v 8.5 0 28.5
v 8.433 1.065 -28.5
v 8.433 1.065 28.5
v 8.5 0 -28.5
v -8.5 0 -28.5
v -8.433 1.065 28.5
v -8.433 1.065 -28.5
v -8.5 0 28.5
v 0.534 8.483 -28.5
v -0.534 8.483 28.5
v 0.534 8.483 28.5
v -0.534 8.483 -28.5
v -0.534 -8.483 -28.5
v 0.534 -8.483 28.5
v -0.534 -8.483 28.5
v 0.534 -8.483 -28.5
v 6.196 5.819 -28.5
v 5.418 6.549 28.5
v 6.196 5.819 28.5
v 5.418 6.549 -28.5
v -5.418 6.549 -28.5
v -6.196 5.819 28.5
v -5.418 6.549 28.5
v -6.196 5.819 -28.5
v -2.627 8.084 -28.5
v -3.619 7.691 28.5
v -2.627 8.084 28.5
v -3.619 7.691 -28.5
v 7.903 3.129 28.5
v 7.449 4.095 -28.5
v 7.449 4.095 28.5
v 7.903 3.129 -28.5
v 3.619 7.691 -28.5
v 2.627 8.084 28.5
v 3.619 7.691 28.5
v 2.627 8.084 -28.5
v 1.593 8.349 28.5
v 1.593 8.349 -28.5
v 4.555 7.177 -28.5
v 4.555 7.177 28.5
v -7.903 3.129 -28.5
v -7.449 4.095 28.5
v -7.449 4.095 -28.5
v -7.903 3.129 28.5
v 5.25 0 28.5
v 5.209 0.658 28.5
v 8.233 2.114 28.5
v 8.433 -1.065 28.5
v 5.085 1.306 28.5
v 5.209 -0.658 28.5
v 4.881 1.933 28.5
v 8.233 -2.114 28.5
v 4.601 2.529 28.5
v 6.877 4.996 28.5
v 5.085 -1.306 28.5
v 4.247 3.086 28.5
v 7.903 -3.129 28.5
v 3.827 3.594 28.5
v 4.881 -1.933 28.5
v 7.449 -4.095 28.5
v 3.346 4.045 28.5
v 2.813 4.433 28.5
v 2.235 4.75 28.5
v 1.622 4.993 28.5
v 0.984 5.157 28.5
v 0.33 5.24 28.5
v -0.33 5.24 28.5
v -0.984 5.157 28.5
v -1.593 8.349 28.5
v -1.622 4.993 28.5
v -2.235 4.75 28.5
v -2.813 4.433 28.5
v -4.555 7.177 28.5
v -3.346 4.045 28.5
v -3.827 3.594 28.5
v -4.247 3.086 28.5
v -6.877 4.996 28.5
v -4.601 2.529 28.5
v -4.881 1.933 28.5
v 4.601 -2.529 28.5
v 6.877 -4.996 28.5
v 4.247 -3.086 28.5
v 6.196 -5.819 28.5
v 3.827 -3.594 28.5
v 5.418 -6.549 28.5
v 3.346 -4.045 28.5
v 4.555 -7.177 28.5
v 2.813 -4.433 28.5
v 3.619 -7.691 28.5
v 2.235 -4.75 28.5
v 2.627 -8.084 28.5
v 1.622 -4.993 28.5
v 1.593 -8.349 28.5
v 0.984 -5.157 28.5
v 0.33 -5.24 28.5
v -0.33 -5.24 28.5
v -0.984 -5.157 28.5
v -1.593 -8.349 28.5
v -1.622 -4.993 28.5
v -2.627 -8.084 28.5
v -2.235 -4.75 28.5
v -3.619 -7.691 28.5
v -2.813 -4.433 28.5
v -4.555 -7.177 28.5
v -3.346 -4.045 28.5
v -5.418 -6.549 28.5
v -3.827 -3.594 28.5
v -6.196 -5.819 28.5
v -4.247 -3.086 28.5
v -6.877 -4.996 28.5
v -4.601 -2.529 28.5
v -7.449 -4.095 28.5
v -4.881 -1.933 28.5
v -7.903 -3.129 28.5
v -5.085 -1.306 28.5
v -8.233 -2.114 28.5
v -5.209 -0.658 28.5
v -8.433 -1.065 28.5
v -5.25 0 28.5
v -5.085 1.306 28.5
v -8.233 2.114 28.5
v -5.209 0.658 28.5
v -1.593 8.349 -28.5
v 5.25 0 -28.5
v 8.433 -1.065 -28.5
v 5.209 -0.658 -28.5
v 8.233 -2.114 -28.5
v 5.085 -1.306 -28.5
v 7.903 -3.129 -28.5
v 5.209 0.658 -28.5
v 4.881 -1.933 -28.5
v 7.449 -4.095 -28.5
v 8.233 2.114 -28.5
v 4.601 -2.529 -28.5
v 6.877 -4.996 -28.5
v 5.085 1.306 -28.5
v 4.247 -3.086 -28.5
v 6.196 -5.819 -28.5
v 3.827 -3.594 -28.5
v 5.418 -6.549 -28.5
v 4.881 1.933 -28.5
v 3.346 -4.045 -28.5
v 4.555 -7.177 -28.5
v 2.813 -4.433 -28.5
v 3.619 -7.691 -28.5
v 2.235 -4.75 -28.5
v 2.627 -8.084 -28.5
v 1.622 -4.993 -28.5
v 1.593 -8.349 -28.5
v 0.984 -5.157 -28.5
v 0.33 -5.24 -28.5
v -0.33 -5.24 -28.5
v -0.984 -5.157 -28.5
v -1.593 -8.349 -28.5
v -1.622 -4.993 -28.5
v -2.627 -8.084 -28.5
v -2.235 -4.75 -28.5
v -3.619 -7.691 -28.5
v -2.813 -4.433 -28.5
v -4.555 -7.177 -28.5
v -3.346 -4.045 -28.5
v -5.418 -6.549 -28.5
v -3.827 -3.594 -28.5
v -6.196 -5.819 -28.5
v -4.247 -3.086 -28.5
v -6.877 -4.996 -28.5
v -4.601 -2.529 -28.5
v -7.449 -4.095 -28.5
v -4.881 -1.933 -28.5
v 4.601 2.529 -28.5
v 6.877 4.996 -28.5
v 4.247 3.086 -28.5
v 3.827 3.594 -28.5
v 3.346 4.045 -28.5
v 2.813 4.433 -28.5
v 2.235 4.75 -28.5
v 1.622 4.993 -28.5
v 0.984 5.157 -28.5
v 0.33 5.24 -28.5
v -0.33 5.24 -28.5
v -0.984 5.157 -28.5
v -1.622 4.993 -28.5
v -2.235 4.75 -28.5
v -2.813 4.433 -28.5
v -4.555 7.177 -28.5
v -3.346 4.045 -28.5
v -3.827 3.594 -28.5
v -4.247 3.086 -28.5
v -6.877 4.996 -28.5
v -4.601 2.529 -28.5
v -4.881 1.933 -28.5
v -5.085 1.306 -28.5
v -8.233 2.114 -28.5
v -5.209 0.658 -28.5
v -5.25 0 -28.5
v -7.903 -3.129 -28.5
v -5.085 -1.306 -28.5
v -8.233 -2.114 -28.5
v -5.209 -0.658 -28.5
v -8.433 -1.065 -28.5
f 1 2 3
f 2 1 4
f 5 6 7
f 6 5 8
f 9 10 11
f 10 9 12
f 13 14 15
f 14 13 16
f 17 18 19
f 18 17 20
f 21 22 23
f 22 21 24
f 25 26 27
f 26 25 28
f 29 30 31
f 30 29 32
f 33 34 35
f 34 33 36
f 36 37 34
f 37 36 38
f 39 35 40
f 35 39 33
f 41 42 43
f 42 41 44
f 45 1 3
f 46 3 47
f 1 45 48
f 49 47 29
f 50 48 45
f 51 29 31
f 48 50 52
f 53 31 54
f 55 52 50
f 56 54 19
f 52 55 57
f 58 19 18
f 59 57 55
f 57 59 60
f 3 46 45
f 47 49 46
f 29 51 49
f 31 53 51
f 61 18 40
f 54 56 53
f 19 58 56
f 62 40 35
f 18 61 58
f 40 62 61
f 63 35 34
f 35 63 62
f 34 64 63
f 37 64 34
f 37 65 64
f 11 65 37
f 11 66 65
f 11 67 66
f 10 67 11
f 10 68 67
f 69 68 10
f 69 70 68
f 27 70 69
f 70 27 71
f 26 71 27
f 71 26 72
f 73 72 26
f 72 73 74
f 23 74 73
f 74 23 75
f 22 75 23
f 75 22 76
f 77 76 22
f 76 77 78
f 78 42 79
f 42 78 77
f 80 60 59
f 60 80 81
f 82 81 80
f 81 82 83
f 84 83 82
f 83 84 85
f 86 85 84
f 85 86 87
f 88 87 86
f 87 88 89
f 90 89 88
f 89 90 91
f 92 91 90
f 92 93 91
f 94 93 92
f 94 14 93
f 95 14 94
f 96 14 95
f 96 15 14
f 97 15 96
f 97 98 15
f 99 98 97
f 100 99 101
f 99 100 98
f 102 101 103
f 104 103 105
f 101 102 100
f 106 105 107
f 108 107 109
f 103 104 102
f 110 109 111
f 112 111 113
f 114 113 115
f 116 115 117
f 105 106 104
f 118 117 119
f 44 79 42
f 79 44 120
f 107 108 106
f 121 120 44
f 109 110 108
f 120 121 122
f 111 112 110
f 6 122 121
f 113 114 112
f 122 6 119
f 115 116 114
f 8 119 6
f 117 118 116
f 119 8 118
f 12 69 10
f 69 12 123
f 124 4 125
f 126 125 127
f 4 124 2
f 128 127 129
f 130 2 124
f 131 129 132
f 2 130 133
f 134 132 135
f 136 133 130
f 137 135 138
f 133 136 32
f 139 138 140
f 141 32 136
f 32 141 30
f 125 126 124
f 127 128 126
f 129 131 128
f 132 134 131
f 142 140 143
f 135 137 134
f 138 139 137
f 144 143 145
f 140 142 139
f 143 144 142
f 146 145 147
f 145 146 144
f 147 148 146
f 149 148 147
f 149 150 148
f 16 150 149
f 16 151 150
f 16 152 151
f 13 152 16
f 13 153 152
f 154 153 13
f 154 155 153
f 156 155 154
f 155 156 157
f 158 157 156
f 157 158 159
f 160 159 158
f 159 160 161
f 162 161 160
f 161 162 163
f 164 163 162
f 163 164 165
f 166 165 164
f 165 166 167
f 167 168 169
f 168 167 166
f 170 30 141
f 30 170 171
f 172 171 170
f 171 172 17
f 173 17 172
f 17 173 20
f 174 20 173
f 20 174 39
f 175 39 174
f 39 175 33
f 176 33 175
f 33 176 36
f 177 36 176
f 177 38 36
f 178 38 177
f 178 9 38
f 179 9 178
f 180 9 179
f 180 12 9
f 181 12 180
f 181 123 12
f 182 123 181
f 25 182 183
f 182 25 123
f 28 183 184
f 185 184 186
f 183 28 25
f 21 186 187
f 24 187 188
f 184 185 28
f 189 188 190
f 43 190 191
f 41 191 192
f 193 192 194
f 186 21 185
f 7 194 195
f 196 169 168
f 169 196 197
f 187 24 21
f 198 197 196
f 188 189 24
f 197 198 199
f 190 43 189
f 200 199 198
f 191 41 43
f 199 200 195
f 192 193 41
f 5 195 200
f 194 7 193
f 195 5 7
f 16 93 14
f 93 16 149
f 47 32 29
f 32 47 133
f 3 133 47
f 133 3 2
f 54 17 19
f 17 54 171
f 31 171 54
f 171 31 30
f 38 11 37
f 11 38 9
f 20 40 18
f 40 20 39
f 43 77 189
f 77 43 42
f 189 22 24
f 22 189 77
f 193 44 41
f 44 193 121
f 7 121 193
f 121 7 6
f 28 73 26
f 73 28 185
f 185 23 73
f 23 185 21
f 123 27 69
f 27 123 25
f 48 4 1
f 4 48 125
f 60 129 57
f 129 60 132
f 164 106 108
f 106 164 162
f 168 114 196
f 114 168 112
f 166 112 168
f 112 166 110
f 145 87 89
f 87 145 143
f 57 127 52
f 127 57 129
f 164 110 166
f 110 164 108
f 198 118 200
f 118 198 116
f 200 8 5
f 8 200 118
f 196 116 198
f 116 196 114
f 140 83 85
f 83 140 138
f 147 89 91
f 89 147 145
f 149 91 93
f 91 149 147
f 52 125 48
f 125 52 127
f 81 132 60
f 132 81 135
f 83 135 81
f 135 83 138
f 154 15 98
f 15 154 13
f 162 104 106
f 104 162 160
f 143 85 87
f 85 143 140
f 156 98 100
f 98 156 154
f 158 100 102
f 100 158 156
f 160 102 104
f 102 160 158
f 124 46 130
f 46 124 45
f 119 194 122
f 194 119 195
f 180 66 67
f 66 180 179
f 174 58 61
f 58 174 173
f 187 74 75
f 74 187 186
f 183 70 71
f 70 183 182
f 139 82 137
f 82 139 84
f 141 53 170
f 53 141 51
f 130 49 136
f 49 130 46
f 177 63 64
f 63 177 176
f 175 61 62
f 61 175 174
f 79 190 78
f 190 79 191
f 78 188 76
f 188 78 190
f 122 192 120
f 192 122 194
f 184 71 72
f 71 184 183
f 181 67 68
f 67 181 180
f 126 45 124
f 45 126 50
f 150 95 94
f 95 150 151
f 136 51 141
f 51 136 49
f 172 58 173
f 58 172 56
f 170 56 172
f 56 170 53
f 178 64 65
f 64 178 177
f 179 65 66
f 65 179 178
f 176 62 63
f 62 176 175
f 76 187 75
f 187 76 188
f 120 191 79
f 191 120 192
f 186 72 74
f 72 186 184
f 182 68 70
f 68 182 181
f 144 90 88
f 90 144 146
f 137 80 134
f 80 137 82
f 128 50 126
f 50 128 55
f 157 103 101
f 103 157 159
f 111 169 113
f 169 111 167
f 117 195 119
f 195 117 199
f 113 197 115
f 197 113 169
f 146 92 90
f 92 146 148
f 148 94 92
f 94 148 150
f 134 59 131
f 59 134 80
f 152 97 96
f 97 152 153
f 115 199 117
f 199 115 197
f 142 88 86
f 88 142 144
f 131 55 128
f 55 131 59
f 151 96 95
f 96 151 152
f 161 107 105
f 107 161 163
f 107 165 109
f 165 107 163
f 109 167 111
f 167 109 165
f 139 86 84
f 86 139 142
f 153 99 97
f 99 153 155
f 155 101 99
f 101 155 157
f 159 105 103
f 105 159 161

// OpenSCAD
$fn = 50;


difference() {
	union() {
		translate(v = [0, 0, -28.5000000000]) {
			cylinder(h = 57, r = 8.5000000000);
		}
	}
	union() {
		translate(v = [0, 0, -100.0000000000]) {
			cylinder(h = 200, r = 5.2500000000);
		}
	}
}
